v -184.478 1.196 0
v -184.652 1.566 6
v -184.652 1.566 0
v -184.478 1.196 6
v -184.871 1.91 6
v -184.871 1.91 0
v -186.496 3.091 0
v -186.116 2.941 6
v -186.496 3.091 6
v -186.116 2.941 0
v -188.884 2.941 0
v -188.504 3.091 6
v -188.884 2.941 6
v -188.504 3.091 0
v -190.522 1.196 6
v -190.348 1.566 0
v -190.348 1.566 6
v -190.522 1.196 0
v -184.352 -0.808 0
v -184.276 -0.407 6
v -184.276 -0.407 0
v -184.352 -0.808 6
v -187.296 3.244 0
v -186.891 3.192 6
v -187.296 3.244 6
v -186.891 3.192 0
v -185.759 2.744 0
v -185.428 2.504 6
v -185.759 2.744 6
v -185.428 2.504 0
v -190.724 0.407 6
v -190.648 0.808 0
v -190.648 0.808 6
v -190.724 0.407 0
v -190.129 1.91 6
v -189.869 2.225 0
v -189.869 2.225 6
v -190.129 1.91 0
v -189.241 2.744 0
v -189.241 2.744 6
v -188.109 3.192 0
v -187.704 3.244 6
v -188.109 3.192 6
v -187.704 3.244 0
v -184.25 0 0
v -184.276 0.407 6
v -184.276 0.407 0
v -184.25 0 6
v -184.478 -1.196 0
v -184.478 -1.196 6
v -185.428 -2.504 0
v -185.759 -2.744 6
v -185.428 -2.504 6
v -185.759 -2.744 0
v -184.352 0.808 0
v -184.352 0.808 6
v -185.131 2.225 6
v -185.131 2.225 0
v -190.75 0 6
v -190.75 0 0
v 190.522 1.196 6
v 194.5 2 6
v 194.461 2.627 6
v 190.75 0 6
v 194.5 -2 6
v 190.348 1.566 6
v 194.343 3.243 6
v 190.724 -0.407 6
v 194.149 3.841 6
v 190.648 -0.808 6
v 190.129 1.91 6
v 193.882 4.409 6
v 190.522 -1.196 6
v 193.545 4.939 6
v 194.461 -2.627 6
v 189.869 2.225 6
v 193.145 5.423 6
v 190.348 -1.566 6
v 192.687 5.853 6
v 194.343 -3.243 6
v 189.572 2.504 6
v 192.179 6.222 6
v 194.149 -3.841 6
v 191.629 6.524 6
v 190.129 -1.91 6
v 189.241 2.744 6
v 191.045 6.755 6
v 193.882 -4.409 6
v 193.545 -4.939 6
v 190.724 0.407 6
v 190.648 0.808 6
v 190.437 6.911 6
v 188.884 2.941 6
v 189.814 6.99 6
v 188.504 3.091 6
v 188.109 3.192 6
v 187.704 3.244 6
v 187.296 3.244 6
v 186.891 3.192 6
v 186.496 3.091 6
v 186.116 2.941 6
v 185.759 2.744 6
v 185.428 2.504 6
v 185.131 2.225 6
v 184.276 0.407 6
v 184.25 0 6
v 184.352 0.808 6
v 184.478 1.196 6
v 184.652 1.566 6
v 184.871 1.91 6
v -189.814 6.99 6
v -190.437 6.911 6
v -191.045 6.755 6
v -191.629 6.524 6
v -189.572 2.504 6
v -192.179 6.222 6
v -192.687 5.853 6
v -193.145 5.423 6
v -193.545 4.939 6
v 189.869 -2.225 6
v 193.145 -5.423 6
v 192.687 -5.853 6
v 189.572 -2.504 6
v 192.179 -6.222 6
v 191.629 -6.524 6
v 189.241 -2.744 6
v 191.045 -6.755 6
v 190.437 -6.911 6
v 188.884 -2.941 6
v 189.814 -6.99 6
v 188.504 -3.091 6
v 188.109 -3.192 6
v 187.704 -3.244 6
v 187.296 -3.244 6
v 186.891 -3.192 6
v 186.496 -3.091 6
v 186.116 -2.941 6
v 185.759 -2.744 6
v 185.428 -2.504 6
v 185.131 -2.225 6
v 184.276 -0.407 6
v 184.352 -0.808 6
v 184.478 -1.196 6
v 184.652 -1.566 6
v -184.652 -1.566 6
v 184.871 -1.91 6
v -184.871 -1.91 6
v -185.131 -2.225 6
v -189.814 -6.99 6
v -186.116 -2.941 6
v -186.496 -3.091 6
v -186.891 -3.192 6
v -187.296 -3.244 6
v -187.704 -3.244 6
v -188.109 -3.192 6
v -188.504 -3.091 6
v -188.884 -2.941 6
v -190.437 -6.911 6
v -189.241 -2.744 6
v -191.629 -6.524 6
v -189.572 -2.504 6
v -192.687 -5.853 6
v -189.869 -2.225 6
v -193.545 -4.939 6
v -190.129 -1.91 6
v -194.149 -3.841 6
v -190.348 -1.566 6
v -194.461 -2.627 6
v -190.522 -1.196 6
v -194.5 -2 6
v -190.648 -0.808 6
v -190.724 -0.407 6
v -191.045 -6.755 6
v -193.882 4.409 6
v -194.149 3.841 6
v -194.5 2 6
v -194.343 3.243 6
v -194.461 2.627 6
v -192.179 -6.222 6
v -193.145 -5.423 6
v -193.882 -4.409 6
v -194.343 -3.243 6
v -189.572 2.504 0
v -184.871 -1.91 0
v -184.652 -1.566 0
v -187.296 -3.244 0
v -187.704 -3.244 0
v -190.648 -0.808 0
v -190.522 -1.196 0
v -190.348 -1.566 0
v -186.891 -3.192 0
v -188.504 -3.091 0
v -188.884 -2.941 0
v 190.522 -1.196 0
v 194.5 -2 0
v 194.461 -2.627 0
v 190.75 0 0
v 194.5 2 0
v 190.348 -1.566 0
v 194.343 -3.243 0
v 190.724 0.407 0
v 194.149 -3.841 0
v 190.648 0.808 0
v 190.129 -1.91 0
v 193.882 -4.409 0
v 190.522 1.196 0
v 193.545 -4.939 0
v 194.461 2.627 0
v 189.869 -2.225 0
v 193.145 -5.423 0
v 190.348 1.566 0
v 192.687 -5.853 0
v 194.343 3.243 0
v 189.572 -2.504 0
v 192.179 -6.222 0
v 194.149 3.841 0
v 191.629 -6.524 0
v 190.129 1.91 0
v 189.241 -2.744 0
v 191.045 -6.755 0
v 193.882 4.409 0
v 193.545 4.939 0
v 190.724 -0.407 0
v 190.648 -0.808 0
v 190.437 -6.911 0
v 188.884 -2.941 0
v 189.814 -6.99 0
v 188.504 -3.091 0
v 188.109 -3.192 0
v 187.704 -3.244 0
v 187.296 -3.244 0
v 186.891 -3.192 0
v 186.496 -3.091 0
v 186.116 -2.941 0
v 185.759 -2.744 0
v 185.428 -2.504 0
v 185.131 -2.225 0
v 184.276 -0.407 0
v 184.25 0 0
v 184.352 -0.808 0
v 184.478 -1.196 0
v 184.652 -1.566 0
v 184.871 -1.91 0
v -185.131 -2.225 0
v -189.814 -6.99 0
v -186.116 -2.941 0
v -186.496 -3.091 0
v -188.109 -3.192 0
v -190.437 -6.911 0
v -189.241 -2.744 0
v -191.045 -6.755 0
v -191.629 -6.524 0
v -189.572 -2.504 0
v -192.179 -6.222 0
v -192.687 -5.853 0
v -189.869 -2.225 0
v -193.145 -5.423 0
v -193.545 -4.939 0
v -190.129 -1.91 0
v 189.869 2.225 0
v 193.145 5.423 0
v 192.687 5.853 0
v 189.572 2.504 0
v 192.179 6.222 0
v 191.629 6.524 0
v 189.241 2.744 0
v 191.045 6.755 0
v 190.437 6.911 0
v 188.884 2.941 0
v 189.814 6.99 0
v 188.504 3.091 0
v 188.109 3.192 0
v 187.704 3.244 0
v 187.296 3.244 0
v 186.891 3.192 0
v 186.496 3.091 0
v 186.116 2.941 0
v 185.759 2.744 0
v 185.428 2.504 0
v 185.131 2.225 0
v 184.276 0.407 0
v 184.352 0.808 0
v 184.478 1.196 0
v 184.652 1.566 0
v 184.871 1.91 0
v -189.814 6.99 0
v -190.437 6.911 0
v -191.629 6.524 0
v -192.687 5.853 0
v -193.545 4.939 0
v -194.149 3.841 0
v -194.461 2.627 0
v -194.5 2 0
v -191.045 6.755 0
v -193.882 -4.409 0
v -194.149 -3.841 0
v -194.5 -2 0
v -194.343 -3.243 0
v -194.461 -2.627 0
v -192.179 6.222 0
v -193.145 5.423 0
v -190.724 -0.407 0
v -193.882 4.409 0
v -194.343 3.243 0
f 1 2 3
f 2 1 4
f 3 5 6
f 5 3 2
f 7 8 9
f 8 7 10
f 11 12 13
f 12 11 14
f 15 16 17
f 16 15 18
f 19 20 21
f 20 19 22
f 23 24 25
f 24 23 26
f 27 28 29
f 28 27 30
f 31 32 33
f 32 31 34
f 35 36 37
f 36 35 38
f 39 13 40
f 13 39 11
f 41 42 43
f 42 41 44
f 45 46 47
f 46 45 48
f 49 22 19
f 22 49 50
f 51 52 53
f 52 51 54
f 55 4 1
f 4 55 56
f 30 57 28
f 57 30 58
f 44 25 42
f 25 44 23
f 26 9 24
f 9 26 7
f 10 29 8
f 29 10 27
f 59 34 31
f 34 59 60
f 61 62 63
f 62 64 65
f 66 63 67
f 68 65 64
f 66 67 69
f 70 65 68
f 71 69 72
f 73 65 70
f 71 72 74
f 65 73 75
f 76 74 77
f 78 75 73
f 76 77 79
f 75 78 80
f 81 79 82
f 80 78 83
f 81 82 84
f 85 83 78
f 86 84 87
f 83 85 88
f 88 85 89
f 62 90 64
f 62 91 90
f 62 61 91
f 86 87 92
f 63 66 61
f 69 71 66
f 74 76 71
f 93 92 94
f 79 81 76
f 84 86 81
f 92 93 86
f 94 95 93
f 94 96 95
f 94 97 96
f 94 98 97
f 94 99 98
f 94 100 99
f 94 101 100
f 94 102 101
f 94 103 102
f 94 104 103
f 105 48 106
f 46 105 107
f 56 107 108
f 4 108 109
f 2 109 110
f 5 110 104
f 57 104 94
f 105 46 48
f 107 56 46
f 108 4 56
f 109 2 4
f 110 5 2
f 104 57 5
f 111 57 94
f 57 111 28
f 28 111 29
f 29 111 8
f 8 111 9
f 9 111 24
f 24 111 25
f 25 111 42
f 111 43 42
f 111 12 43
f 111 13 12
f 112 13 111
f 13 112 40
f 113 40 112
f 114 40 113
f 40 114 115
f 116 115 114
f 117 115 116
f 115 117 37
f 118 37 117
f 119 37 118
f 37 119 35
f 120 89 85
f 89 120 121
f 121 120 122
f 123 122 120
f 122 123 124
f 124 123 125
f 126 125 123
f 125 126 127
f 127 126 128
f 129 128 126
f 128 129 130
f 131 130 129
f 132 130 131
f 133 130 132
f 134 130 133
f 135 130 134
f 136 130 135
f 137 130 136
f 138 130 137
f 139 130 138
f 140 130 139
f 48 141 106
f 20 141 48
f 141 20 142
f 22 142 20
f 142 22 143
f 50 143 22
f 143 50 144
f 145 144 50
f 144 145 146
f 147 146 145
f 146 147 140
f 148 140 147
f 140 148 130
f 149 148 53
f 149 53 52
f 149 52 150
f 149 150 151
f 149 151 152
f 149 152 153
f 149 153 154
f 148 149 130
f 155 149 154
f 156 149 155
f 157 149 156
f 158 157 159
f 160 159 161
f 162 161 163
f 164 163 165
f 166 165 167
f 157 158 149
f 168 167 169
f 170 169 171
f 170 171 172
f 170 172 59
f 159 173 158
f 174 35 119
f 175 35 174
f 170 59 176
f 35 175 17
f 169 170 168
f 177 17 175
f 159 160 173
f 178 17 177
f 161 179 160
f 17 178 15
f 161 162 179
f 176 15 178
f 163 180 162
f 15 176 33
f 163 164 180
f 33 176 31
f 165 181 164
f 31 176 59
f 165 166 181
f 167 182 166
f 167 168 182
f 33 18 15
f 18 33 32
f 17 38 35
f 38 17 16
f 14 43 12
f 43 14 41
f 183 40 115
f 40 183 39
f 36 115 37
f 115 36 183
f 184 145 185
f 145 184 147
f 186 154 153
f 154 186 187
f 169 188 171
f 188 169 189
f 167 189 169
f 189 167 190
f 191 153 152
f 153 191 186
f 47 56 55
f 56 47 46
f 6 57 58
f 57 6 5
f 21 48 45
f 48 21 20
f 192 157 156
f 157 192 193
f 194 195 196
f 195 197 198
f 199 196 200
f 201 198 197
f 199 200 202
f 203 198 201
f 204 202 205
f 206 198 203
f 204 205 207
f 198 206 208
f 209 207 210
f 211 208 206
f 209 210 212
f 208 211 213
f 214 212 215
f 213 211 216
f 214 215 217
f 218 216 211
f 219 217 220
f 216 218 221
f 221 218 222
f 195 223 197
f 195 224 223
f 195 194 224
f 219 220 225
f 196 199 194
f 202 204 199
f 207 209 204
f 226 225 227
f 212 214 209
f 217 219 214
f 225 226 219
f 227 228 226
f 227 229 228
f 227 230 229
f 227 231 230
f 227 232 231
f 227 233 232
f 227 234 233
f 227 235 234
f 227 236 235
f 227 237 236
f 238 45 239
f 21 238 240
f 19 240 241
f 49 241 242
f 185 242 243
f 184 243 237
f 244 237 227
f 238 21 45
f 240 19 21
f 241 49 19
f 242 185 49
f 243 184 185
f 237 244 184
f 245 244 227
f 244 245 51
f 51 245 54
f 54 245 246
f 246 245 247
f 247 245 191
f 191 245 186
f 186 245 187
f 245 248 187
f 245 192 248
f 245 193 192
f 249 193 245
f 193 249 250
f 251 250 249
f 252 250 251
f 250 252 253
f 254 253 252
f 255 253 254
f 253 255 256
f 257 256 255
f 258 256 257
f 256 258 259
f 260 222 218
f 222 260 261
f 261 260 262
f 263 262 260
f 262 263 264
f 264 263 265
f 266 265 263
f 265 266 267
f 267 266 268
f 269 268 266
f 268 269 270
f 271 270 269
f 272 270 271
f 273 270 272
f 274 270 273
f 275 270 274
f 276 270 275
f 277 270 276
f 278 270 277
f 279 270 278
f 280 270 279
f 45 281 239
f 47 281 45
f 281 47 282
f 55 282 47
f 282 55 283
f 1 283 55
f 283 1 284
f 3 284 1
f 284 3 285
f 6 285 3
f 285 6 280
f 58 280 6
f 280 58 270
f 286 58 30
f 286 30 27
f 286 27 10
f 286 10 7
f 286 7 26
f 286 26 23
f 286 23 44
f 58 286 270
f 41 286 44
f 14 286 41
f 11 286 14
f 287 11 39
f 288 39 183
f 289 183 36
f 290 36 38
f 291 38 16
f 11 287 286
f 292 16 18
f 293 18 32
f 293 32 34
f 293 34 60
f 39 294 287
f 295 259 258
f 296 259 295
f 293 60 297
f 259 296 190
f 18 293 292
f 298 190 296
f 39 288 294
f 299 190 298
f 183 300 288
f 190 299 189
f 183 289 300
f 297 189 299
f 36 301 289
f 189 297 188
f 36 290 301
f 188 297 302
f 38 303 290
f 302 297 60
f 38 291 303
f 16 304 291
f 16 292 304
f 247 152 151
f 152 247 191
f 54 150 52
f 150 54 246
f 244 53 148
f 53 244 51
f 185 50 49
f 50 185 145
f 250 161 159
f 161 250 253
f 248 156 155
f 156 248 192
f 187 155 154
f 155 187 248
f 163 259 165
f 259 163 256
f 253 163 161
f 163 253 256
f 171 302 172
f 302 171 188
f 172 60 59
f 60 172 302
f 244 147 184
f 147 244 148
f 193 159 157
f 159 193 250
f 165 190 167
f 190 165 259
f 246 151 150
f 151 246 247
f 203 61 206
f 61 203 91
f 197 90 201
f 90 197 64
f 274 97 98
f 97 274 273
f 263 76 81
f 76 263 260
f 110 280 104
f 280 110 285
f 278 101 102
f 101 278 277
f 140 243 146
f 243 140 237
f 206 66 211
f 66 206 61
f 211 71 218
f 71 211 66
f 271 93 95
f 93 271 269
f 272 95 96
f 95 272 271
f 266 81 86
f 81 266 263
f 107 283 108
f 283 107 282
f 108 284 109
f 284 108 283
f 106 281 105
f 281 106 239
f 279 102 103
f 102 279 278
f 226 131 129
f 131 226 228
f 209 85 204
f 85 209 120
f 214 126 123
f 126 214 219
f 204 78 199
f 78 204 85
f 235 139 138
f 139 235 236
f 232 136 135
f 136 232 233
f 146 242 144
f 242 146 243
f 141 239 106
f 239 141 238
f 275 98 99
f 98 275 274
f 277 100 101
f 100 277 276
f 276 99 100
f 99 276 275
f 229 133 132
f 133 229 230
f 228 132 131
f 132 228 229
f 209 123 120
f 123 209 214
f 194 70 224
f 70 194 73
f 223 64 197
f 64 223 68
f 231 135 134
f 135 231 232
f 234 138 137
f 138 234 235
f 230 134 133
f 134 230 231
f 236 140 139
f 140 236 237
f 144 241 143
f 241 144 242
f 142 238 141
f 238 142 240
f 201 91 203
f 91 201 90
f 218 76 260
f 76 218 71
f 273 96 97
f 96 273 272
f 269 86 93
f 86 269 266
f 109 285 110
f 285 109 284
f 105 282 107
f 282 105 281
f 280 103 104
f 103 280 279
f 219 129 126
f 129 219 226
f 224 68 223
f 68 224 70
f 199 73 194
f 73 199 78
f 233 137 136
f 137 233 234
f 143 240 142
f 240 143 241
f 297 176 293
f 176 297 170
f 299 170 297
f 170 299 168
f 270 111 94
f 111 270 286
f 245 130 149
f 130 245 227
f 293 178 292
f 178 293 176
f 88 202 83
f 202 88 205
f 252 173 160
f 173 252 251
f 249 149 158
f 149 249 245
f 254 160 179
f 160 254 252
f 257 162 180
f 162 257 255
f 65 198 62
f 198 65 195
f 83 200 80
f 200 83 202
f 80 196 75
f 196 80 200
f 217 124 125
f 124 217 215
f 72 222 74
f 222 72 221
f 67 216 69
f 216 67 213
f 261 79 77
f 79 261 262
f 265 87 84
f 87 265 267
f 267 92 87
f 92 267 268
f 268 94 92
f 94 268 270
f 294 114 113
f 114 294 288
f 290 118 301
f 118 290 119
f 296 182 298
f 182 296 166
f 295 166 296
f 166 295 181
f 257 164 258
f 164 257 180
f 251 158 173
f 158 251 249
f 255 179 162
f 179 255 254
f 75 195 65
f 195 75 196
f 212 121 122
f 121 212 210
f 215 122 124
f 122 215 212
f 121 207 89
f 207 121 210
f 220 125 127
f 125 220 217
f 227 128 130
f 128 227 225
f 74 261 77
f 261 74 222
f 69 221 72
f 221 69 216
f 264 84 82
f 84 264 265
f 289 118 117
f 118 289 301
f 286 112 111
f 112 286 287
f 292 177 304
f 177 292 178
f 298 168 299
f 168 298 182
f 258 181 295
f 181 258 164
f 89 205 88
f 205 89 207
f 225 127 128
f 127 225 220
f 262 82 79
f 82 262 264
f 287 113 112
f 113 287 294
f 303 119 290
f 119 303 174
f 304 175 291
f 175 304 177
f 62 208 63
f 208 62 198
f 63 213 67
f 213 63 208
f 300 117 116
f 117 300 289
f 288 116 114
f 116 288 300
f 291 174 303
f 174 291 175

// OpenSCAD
$fn = 50;


difference() {
	union() {
		hull() {
			translate(v = [-189.5000000000, 2.0000000000, 0]) {
				cylinder(h = 6, r = 5);
			}
			translate(v = [189.5000000000, 2.0000000000, 0]) {
				cylinder(h = 6, r = 5);
			}
			translate(v = [-189.5000000000, -2.0000000000, 0]) {
				cylinder(h = 6, r = 5);
			}
			translate(v = [189.5000000000, -2.0000000000, 0]) {
				cylinder(h = 6, r = 5);
			}
		}
	}
	union() {
		translate(v = [-187.5000000000, 0.0000000000, 0]) {
			cylinder(h = 6, r = 3.2500000000);
		}
		translate(v = [187.5000000000, 0.0000000000, 0]) {
			cylinder(h = 6, r = 3.2500000000);
		}
		translate(v = [-187.5000000000, 0.0000000000, 0]) {
			cylinder(h = 6, r = 1.8000000000);
		}
		translate(v = [187.5000000000, 0.0000000000, 0]) {
			cylinder(h = 6, r = 1.8000000000);
		}
		translate(v = [-187.5000000000, 0.0000000000, 0]) {
			cylinder(h = 6, r = 1.8000000000);
		}
		translate(v = [187.5000000000, 0.0000000000, 0]) {
			cylinder(h = 6, r = 1.8000000000);
		}
		translate(v = [-187.5000000000, 0.0000000000, 0]) {
			cylinder(h = 6, r = 1.8000000000);
		}
		translate(v = [187.5000000000, 0.0000000000, 0]) {
			cylinder(h = 6, r = 1.8000000000);
		}
	}
}
